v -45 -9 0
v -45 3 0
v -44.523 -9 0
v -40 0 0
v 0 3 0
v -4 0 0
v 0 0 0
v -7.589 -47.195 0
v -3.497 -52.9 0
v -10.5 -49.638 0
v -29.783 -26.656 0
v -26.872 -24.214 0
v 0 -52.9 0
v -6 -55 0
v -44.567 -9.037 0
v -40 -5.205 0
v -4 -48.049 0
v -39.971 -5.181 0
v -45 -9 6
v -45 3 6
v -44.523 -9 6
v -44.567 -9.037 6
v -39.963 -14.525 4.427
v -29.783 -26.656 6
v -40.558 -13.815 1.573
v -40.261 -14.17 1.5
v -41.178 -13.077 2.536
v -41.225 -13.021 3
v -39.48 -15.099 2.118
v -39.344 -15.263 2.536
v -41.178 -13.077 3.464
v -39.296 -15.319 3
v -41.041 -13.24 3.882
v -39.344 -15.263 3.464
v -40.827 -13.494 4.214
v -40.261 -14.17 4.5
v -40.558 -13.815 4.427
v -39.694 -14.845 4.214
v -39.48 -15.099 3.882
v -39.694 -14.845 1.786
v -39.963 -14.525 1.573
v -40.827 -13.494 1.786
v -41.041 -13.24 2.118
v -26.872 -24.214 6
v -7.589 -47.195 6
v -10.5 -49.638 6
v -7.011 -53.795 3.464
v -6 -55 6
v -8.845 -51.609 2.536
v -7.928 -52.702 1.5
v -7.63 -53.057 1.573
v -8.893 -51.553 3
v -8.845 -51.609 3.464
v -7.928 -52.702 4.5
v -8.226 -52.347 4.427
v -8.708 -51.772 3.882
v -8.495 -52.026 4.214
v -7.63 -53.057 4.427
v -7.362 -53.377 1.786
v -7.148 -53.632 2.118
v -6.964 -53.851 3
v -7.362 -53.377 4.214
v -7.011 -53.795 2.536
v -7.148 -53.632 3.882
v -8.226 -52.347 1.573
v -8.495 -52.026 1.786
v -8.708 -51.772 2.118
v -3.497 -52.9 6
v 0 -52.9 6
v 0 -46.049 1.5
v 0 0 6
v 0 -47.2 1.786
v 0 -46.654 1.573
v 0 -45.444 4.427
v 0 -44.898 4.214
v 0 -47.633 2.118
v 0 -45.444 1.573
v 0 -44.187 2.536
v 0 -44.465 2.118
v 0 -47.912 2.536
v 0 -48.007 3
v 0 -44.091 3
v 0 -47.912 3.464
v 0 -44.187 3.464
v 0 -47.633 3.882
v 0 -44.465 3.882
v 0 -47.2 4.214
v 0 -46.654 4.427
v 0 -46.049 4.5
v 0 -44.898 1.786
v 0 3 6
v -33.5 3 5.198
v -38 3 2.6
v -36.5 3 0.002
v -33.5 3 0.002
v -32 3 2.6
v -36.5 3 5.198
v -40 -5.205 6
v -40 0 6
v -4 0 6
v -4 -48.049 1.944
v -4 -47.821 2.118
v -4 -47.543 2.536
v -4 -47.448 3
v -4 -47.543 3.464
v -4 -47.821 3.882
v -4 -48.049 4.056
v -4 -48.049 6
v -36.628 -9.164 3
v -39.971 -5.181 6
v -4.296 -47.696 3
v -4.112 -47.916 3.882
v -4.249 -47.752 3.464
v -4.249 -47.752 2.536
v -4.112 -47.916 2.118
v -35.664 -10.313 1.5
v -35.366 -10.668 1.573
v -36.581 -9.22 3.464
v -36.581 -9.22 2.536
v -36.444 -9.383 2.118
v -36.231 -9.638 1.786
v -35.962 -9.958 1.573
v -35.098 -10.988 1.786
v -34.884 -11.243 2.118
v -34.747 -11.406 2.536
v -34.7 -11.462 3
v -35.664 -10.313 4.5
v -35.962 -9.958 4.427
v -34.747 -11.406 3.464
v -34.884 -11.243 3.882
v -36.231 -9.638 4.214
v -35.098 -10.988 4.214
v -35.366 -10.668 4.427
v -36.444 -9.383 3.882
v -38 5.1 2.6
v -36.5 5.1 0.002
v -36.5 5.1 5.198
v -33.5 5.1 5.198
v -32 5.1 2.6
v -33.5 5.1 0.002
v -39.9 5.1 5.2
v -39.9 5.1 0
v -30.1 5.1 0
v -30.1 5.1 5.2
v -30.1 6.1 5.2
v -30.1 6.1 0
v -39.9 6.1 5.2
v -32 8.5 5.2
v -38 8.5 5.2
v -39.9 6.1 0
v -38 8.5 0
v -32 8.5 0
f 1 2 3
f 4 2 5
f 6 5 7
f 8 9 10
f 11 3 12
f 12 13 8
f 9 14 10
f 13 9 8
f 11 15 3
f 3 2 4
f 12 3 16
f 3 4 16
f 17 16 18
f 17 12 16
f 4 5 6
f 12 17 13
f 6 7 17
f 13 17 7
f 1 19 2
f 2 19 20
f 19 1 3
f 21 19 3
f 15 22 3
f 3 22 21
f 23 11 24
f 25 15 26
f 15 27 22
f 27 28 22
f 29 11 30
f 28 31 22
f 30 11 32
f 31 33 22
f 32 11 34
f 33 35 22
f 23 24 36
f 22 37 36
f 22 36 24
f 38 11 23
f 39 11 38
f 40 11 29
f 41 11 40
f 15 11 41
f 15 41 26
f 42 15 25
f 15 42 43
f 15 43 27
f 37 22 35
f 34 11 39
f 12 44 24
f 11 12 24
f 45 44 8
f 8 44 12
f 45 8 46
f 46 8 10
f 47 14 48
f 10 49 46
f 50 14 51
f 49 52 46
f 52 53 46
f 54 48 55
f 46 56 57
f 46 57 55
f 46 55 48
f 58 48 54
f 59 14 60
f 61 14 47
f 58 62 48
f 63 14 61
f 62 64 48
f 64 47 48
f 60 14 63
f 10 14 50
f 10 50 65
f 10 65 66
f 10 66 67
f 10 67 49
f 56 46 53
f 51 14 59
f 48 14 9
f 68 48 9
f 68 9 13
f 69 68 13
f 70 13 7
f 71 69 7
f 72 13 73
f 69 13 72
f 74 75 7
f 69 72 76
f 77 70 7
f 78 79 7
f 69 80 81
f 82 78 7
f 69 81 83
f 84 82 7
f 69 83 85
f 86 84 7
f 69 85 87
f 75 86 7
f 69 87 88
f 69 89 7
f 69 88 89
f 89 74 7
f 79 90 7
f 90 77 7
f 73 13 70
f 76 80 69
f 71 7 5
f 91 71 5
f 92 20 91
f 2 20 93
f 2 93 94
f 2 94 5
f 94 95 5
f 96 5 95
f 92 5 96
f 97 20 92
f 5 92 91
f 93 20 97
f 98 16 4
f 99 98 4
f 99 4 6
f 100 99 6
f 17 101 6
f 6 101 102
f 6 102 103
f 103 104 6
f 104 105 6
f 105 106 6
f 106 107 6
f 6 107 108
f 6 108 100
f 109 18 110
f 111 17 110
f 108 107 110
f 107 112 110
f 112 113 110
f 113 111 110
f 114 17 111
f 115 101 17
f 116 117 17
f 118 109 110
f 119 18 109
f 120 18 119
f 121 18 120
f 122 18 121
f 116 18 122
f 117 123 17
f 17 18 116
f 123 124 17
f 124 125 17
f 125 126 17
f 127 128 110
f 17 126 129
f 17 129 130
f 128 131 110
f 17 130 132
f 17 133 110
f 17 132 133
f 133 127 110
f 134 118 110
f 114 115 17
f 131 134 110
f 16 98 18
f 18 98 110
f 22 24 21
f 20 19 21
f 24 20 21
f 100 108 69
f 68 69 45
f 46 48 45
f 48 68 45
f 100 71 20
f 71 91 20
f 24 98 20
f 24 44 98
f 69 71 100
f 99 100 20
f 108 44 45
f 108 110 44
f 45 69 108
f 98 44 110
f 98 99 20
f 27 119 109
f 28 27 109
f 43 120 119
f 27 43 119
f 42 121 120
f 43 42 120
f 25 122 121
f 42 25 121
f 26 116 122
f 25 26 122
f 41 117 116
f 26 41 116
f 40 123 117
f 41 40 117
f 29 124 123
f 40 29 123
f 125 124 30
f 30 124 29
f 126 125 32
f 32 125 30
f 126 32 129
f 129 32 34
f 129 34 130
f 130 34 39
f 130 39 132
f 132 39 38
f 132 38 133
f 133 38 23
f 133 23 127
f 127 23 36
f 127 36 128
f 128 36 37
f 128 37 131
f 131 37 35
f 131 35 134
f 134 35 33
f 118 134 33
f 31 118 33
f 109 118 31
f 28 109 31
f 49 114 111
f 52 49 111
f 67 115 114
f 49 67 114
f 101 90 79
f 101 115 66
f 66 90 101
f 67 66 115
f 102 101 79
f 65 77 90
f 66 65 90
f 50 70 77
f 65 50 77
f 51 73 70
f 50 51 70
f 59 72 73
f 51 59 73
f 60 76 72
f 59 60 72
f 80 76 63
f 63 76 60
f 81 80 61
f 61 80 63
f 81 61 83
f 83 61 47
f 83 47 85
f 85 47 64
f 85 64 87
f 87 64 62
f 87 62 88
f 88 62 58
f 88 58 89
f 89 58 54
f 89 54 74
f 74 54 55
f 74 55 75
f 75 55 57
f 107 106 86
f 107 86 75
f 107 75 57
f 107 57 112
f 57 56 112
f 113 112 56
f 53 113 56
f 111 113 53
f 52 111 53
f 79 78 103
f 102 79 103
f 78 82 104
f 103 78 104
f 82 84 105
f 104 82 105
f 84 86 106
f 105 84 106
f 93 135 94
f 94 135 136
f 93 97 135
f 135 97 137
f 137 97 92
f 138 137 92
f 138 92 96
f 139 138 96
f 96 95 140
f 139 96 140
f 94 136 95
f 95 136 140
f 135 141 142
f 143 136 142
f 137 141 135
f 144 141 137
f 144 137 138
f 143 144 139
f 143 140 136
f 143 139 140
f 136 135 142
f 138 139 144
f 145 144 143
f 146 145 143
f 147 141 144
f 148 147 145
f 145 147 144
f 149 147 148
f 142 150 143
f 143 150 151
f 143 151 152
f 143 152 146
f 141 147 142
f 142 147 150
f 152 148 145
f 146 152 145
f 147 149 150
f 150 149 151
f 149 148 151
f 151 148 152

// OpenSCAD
$fn=20;


rotate([0,-90,0]){
difference(){
	union(){
		cube([6,3,45]);


#		translate([0,-9,40]) cube([6,9,5]);


		translate([0,.1,4])rotate ([180,0,0])cube([6,53,4]);
		translate ([0,-55,6])rotate([-50,0,0])cube([6,6,60]);

			
		}
	
		translate ([0,-55,6])rotate([-50,0,0]){
			//broad mount
			translate ([3,15,3])rotate([90,0,0]) cylinder(20,1.5,1.5);
			translate ([3,10,53.3])rotate([90,0,0]) cylinder(20,1.5,1.5);
			//sd card
			translate ([0,3.8,7])rotate([90,0,0]) cube([6,30,4]);
		}


		translate ([4,-5,10])rotate([90,0,0]) cylinder(8,1.5,1.5);
		//translate ([4,-5,35])rotate([90,0,0]) cylinder(40,1.5,1.5);

		translate ([0,3,0]) cube([8,3,54]);
}



}




translate ([0,3,5])rotate([-0,90,90]){
		translate ([2.4,35,-0.5]) rotate([0,0,30]) cylinder(3,3,3,$fn=6);

		translate ([2.5,35,0.7]) hull(){

			translate ([-2.7,-4.9,1.4]) cube ([5.2,9.8,1]);
			translate ([-2.7,-3,1.8]) cube ([5.2,6,3]);

		}

}
